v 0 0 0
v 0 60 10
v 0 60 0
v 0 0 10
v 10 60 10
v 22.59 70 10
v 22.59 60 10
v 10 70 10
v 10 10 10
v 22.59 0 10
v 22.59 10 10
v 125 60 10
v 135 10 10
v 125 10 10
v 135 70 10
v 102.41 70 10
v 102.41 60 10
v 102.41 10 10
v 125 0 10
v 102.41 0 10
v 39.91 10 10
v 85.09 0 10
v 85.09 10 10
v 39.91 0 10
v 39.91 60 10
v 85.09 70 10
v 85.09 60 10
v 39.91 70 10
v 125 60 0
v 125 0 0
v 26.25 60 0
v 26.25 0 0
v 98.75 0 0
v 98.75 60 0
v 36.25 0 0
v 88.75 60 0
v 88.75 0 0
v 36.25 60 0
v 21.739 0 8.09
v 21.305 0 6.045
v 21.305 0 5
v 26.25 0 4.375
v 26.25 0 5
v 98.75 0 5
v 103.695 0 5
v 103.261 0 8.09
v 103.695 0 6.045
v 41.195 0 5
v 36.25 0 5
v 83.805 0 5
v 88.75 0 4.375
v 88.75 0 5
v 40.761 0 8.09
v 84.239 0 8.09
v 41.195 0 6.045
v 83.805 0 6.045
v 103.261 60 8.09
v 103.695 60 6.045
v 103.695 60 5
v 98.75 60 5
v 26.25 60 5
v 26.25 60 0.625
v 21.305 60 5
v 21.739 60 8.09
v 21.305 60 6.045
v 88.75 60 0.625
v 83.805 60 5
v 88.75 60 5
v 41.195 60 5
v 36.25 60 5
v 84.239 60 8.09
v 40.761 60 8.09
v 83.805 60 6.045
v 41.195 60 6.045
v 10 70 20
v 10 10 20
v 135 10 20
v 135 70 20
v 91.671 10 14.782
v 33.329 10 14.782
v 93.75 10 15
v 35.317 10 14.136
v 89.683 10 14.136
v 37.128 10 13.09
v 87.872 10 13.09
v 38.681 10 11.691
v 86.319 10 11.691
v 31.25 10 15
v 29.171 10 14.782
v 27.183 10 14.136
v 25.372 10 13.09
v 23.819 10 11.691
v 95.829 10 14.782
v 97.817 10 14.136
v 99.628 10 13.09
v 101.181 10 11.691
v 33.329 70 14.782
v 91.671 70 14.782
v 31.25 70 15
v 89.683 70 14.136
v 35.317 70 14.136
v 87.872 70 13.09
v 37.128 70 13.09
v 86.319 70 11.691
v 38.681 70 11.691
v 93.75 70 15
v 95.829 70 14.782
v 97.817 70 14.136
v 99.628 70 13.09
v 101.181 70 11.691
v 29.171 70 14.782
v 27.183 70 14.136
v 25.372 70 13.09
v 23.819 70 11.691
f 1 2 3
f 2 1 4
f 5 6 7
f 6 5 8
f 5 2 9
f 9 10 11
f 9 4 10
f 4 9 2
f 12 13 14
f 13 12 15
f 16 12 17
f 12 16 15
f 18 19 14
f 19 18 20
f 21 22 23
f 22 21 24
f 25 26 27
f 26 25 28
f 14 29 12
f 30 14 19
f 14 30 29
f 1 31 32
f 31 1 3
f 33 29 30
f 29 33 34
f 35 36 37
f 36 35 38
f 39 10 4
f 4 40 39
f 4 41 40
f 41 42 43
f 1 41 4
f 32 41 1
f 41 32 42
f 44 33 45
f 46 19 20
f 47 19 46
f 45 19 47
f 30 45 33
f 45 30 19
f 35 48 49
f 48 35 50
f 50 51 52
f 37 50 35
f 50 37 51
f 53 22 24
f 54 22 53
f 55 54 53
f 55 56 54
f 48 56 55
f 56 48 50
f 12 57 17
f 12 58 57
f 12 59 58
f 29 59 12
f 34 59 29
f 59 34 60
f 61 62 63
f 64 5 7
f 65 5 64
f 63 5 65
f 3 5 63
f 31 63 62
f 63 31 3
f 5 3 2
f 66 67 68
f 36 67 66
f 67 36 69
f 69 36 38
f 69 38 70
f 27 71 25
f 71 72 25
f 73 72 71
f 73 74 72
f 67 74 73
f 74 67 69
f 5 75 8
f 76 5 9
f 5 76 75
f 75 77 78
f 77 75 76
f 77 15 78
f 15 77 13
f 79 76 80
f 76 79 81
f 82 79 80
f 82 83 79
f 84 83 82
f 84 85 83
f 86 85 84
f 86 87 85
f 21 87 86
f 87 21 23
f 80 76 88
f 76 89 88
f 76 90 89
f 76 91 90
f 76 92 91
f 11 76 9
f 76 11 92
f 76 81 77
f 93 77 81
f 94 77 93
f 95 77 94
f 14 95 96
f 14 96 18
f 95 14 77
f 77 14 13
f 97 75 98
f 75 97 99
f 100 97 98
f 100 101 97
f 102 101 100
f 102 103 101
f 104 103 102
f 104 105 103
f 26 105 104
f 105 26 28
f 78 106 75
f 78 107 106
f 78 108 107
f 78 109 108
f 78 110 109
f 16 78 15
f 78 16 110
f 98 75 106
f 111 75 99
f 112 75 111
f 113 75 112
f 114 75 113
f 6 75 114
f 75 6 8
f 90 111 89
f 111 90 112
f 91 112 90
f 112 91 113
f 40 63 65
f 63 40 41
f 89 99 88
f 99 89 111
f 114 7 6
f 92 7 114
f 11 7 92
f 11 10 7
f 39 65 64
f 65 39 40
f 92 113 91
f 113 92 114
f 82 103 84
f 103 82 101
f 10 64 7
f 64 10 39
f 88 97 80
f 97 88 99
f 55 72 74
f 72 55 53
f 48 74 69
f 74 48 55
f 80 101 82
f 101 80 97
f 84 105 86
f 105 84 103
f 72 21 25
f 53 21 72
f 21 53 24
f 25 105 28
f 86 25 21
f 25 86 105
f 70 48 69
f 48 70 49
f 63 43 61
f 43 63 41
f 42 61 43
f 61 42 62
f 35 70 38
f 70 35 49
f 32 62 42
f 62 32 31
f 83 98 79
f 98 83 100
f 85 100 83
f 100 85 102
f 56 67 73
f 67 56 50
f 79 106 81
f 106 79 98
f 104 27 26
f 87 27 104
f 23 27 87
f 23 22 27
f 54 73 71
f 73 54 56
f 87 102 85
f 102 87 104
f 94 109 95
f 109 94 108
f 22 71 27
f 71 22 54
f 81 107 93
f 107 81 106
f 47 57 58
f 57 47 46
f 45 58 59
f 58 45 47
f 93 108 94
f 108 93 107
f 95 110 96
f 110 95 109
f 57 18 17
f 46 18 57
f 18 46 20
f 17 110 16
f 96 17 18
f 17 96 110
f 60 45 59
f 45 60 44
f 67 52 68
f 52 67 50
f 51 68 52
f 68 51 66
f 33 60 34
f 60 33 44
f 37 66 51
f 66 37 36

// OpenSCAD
module ckey(theh)
{
        halfcylinder(theh);
        translate([5,0,0]) rotate([-90,90,0]) cube([10,10,theh]);
}

module halfcylinder(theh)
{
      difference(){
        rotate([-90,90,0]) cylinder(h=theh,r=10);
        rotate([-90,90,0]) translate([0,-10,-1]) cube([20,20,theh+2]);
      }
}



module basebrick(bh,bl)
{
    cube([bl,bh,10]);
    translate([10,10,10]) cube([bl,bh,10]);
}

module brick(bl,bh)
{   
    difference(){
        basebrick(bh,bl);
        translate([bl*.25,-10,5]) ckey(160);
        translate([bl*.75,-10,5]) ckey(160);
        }
    
}

brick(125,60);
